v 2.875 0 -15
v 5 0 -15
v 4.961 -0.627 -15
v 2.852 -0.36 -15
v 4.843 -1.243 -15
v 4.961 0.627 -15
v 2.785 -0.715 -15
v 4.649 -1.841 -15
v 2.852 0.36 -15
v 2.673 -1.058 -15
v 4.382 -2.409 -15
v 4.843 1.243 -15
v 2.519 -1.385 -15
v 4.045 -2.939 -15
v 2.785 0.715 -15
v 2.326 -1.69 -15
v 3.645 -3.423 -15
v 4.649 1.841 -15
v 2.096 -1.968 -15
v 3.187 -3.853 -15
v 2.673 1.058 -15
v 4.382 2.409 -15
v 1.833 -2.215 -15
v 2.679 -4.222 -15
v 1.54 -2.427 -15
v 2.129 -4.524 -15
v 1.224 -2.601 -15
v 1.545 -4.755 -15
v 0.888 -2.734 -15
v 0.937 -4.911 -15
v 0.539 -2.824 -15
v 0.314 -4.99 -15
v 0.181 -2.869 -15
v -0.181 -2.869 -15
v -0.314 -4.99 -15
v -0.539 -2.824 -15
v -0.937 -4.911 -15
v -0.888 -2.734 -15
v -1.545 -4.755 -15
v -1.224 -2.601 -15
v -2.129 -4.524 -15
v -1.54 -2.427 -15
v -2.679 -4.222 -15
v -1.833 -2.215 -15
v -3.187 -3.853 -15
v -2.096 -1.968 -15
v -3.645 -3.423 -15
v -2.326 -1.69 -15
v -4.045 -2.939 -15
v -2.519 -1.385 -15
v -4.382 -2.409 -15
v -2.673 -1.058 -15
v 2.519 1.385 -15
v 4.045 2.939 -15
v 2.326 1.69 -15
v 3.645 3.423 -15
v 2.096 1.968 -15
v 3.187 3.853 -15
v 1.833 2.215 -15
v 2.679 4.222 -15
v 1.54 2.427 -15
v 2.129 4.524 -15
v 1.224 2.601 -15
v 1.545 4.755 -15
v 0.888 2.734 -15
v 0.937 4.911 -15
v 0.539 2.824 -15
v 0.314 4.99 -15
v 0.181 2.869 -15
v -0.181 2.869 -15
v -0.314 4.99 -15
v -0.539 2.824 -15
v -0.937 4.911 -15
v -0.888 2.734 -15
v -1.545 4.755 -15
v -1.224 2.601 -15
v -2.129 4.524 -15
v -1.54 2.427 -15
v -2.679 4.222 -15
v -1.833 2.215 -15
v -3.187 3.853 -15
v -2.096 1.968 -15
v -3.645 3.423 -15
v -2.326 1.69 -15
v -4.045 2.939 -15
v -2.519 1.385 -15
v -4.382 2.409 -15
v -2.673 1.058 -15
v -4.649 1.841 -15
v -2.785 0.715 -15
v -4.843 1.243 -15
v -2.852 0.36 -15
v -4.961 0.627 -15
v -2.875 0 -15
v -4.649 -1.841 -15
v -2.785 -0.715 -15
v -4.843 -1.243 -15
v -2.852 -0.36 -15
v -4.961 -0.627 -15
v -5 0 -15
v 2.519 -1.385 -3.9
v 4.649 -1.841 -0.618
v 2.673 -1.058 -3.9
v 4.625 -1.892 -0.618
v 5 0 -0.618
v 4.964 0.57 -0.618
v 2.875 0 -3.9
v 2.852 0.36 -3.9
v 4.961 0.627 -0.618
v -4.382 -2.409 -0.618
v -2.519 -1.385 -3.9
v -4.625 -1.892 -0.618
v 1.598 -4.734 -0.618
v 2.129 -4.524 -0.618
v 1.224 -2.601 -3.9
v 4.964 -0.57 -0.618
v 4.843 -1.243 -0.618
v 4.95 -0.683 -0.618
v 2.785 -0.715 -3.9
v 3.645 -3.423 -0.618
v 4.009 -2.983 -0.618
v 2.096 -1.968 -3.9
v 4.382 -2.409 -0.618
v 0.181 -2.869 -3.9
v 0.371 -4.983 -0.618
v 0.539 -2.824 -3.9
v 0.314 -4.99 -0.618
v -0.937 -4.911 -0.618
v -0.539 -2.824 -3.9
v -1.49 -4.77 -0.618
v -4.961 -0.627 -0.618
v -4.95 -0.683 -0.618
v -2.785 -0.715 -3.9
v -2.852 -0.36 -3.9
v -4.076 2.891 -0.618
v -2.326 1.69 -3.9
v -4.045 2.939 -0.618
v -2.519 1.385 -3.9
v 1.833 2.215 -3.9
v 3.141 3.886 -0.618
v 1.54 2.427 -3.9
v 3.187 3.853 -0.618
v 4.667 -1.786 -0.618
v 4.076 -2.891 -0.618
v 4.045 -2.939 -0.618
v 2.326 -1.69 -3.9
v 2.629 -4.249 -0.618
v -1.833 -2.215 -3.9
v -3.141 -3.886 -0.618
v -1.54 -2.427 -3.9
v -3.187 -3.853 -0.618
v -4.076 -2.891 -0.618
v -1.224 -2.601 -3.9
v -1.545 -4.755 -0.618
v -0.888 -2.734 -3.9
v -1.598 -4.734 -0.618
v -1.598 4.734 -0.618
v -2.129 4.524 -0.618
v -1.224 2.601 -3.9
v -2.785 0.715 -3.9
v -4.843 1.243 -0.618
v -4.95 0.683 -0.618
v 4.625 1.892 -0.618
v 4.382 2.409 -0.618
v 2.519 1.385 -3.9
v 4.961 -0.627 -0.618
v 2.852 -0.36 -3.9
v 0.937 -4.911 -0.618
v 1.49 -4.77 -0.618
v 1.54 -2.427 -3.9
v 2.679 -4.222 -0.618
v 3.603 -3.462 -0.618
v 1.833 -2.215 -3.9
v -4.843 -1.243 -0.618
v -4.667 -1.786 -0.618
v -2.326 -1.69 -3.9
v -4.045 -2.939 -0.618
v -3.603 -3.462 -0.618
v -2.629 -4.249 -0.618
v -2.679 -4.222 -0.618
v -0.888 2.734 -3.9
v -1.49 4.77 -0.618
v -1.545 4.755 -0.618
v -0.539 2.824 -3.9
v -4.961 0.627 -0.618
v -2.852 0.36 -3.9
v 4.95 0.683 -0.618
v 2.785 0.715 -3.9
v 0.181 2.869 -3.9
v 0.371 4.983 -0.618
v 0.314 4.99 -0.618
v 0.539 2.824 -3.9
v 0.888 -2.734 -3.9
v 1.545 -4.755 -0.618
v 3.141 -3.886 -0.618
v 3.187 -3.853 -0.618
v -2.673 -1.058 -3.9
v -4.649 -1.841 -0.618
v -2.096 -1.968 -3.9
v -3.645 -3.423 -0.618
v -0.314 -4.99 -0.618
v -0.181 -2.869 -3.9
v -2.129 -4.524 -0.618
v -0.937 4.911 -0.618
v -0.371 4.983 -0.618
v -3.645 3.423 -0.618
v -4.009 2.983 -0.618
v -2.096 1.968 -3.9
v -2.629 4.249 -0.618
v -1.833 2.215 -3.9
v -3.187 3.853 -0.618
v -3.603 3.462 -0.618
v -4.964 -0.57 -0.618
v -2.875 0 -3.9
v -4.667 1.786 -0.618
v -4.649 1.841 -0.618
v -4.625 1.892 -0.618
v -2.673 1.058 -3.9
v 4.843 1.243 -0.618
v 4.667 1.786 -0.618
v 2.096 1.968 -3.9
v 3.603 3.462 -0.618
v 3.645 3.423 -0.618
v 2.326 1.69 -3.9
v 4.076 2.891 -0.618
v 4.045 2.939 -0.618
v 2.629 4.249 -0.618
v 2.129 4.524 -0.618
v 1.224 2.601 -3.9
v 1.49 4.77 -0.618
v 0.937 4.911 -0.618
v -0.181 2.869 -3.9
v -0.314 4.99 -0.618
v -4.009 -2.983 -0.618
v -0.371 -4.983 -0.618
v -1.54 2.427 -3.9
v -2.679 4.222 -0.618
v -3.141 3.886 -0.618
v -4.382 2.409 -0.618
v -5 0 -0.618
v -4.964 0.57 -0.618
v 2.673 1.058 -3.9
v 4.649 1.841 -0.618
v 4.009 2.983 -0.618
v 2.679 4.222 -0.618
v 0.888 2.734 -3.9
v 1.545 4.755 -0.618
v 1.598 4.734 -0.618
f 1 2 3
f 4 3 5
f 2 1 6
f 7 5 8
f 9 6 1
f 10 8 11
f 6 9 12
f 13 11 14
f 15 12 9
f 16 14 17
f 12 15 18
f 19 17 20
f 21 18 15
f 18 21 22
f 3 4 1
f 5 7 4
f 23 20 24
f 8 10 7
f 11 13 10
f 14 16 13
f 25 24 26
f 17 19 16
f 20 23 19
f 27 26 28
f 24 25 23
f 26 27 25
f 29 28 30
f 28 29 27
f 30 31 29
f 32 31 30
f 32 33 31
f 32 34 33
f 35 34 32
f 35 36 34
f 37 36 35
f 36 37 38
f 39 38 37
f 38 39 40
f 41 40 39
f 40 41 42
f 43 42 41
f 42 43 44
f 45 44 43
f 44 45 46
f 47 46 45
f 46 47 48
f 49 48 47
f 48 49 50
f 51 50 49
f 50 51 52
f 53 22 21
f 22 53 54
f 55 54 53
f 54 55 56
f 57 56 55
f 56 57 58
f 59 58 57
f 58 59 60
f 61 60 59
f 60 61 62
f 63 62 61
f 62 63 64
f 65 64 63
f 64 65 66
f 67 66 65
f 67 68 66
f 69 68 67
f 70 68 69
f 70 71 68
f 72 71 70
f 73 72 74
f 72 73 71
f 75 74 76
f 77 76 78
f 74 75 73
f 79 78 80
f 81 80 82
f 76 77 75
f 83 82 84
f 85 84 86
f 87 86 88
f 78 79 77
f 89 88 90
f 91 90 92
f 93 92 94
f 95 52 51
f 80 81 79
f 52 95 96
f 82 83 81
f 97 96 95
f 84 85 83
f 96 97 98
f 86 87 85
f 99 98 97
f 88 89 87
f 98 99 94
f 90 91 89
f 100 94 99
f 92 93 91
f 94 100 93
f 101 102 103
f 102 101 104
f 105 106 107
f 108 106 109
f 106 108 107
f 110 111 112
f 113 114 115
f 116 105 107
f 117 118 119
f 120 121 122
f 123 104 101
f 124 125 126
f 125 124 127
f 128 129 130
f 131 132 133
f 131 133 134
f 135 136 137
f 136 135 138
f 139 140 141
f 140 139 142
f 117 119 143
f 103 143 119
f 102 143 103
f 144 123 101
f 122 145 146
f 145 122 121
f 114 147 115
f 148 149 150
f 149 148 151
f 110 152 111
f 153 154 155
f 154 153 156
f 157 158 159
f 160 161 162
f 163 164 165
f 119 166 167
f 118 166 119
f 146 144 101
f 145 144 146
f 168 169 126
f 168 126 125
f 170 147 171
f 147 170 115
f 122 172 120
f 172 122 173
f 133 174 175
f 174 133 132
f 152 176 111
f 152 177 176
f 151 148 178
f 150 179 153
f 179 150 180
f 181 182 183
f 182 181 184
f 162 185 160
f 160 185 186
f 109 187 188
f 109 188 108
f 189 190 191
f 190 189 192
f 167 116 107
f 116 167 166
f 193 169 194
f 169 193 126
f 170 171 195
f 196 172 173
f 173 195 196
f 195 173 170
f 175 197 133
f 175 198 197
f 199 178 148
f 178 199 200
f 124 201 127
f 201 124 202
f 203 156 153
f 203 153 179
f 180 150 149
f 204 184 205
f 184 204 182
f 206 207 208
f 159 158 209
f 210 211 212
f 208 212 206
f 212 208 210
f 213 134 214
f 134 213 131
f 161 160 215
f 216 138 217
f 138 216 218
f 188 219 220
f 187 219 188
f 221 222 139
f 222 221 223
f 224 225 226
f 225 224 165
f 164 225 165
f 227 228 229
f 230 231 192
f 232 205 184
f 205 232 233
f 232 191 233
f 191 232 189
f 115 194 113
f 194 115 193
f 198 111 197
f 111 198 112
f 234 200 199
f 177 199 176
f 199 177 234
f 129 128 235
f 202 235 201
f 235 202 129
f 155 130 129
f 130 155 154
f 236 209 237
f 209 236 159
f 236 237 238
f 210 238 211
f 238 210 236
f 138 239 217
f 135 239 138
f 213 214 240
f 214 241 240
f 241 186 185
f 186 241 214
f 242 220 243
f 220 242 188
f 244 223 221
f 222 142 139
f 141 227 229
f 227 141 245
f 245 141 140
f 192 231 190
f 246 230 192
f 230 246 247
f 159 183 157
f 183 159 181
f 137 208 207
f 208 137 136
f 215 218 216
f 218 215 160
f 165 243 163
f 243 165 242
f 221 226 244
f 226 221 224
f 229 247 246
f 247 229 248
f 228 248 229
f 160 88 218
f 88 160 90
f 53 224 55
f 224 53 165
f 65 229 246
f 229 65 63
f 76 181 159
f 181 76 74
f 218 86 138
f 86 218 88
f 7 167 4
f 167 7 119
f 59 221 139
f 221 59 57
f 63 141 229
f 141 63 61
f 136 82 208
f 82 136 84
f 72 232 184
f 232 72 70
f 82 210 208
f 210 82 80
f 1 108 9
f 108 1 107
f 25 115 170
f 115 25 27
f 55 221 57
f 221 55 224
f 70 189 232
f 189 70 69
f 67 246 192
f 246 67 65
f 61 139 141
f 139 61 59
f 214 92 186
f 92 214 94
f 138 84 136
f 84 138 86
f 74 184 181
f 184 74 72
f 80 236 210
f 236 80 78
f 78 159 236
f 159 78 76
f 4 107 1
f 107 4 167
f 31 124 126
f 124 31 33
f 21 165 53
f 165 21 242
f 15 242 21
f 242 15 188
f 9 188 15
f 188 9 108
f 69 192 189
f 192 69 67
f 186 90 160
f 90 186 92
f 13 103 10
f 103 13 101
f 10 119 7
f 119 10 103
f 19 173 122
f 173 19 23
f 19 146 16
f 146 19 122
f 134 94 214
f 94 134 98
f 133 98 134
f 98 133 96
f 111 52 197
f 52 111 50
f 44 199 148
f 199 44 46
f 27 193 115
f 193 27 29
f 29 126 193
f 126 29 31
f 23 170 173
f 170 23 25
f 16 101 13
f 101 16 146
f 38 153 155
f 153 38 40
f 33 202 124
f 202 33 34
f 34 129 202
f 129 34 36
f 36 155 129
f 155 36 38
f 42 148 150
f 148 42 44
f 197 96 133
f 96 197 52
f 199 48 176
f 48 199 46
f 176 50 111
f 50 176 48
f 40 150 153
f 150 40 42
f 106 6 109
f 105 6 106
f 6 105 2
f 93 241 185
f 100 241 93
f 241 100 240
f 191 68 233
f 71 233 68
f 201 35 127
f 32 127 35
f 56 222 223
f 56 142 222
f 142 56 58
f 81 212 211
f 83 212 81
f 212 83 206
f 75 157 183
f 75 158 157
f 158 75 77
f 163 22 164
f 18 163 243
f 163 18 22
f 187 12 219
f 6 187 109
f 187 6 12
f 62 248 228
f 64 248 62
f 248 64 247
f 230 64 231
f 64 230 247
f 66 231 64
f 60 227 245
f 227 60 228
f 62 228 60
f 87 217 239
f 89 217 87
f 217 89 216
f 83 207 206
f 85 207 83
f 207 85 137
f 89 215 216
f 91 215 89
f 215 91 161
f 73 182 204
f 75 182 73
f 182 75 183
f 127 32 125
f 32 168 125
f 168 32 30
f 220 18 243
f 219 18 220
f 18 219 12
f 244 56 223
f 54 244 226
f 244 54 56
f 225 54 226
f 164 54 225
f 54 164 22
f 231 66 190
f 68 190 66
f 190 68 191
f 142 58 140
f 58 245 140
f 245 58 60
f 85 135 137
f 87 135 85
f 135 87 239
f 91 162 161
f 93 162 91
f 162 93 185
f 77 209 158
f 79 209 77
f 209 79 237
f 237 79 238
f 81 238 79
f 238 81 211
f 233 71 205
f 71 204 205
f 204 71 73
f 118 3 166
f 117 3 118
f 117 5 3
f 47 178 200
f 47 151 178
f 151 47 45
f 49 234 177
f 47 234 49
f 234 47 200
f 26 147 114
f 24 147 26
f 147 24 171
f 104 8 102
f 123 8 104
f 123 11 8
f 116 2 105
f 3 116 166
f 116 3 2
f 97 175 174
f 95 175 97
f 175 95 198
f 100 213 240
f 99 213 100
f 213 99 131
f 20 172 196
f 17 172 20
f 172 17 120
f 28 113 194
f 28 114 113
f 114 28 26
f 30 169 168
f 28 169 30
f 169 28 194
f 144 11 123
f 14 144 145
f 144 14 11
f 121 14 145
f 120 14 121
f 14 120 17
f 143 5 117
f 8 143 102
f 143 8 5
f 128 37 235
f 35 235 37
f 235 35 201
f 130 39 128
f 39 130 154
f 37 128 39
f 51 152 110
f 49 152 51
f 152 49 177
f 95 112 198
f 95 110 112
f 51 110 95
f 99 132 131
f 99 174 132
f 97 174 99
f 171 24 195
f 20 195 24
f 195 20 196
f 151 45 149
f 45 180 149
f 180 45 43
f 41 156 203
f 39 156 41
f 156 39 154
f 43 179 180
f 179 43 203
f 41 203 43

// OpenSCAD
$fn = 50;


difference() {
	union() {
		translate(v = [0, 0, -15.0000000000]) {
			cylinder(h = 15, r = 5.0000000000);
		}
		cylinder(h = 0, r = 8.0000000000);
	}
	union() {
		translate(v = [0, 0, 0]) {
			rotate(a = [0, 0, 0]) {
				difference() {
					union() {
						#translate(v = [0, 0, -15.0000000000]) {
							cylinder(h = 15, r = 2.6000000000);
						}
						#translate(v = [0, 0, -3.9000000000]) {
							cylinder(h = 3.9000000000, r1 = 2.8750000000, r2 = 5.4000000000);
						}
						#translate(v = [0, 0, -15.0000000000]) {
							cylinder(h = 15, r = 2.8750000000);
						}
						#translate(v = [0, 0, -15.0000000000]) {
							cylinder(h = 15, r = 2.6000000000);
						}
					}
					union();
				}
			}
		}
	}
}
